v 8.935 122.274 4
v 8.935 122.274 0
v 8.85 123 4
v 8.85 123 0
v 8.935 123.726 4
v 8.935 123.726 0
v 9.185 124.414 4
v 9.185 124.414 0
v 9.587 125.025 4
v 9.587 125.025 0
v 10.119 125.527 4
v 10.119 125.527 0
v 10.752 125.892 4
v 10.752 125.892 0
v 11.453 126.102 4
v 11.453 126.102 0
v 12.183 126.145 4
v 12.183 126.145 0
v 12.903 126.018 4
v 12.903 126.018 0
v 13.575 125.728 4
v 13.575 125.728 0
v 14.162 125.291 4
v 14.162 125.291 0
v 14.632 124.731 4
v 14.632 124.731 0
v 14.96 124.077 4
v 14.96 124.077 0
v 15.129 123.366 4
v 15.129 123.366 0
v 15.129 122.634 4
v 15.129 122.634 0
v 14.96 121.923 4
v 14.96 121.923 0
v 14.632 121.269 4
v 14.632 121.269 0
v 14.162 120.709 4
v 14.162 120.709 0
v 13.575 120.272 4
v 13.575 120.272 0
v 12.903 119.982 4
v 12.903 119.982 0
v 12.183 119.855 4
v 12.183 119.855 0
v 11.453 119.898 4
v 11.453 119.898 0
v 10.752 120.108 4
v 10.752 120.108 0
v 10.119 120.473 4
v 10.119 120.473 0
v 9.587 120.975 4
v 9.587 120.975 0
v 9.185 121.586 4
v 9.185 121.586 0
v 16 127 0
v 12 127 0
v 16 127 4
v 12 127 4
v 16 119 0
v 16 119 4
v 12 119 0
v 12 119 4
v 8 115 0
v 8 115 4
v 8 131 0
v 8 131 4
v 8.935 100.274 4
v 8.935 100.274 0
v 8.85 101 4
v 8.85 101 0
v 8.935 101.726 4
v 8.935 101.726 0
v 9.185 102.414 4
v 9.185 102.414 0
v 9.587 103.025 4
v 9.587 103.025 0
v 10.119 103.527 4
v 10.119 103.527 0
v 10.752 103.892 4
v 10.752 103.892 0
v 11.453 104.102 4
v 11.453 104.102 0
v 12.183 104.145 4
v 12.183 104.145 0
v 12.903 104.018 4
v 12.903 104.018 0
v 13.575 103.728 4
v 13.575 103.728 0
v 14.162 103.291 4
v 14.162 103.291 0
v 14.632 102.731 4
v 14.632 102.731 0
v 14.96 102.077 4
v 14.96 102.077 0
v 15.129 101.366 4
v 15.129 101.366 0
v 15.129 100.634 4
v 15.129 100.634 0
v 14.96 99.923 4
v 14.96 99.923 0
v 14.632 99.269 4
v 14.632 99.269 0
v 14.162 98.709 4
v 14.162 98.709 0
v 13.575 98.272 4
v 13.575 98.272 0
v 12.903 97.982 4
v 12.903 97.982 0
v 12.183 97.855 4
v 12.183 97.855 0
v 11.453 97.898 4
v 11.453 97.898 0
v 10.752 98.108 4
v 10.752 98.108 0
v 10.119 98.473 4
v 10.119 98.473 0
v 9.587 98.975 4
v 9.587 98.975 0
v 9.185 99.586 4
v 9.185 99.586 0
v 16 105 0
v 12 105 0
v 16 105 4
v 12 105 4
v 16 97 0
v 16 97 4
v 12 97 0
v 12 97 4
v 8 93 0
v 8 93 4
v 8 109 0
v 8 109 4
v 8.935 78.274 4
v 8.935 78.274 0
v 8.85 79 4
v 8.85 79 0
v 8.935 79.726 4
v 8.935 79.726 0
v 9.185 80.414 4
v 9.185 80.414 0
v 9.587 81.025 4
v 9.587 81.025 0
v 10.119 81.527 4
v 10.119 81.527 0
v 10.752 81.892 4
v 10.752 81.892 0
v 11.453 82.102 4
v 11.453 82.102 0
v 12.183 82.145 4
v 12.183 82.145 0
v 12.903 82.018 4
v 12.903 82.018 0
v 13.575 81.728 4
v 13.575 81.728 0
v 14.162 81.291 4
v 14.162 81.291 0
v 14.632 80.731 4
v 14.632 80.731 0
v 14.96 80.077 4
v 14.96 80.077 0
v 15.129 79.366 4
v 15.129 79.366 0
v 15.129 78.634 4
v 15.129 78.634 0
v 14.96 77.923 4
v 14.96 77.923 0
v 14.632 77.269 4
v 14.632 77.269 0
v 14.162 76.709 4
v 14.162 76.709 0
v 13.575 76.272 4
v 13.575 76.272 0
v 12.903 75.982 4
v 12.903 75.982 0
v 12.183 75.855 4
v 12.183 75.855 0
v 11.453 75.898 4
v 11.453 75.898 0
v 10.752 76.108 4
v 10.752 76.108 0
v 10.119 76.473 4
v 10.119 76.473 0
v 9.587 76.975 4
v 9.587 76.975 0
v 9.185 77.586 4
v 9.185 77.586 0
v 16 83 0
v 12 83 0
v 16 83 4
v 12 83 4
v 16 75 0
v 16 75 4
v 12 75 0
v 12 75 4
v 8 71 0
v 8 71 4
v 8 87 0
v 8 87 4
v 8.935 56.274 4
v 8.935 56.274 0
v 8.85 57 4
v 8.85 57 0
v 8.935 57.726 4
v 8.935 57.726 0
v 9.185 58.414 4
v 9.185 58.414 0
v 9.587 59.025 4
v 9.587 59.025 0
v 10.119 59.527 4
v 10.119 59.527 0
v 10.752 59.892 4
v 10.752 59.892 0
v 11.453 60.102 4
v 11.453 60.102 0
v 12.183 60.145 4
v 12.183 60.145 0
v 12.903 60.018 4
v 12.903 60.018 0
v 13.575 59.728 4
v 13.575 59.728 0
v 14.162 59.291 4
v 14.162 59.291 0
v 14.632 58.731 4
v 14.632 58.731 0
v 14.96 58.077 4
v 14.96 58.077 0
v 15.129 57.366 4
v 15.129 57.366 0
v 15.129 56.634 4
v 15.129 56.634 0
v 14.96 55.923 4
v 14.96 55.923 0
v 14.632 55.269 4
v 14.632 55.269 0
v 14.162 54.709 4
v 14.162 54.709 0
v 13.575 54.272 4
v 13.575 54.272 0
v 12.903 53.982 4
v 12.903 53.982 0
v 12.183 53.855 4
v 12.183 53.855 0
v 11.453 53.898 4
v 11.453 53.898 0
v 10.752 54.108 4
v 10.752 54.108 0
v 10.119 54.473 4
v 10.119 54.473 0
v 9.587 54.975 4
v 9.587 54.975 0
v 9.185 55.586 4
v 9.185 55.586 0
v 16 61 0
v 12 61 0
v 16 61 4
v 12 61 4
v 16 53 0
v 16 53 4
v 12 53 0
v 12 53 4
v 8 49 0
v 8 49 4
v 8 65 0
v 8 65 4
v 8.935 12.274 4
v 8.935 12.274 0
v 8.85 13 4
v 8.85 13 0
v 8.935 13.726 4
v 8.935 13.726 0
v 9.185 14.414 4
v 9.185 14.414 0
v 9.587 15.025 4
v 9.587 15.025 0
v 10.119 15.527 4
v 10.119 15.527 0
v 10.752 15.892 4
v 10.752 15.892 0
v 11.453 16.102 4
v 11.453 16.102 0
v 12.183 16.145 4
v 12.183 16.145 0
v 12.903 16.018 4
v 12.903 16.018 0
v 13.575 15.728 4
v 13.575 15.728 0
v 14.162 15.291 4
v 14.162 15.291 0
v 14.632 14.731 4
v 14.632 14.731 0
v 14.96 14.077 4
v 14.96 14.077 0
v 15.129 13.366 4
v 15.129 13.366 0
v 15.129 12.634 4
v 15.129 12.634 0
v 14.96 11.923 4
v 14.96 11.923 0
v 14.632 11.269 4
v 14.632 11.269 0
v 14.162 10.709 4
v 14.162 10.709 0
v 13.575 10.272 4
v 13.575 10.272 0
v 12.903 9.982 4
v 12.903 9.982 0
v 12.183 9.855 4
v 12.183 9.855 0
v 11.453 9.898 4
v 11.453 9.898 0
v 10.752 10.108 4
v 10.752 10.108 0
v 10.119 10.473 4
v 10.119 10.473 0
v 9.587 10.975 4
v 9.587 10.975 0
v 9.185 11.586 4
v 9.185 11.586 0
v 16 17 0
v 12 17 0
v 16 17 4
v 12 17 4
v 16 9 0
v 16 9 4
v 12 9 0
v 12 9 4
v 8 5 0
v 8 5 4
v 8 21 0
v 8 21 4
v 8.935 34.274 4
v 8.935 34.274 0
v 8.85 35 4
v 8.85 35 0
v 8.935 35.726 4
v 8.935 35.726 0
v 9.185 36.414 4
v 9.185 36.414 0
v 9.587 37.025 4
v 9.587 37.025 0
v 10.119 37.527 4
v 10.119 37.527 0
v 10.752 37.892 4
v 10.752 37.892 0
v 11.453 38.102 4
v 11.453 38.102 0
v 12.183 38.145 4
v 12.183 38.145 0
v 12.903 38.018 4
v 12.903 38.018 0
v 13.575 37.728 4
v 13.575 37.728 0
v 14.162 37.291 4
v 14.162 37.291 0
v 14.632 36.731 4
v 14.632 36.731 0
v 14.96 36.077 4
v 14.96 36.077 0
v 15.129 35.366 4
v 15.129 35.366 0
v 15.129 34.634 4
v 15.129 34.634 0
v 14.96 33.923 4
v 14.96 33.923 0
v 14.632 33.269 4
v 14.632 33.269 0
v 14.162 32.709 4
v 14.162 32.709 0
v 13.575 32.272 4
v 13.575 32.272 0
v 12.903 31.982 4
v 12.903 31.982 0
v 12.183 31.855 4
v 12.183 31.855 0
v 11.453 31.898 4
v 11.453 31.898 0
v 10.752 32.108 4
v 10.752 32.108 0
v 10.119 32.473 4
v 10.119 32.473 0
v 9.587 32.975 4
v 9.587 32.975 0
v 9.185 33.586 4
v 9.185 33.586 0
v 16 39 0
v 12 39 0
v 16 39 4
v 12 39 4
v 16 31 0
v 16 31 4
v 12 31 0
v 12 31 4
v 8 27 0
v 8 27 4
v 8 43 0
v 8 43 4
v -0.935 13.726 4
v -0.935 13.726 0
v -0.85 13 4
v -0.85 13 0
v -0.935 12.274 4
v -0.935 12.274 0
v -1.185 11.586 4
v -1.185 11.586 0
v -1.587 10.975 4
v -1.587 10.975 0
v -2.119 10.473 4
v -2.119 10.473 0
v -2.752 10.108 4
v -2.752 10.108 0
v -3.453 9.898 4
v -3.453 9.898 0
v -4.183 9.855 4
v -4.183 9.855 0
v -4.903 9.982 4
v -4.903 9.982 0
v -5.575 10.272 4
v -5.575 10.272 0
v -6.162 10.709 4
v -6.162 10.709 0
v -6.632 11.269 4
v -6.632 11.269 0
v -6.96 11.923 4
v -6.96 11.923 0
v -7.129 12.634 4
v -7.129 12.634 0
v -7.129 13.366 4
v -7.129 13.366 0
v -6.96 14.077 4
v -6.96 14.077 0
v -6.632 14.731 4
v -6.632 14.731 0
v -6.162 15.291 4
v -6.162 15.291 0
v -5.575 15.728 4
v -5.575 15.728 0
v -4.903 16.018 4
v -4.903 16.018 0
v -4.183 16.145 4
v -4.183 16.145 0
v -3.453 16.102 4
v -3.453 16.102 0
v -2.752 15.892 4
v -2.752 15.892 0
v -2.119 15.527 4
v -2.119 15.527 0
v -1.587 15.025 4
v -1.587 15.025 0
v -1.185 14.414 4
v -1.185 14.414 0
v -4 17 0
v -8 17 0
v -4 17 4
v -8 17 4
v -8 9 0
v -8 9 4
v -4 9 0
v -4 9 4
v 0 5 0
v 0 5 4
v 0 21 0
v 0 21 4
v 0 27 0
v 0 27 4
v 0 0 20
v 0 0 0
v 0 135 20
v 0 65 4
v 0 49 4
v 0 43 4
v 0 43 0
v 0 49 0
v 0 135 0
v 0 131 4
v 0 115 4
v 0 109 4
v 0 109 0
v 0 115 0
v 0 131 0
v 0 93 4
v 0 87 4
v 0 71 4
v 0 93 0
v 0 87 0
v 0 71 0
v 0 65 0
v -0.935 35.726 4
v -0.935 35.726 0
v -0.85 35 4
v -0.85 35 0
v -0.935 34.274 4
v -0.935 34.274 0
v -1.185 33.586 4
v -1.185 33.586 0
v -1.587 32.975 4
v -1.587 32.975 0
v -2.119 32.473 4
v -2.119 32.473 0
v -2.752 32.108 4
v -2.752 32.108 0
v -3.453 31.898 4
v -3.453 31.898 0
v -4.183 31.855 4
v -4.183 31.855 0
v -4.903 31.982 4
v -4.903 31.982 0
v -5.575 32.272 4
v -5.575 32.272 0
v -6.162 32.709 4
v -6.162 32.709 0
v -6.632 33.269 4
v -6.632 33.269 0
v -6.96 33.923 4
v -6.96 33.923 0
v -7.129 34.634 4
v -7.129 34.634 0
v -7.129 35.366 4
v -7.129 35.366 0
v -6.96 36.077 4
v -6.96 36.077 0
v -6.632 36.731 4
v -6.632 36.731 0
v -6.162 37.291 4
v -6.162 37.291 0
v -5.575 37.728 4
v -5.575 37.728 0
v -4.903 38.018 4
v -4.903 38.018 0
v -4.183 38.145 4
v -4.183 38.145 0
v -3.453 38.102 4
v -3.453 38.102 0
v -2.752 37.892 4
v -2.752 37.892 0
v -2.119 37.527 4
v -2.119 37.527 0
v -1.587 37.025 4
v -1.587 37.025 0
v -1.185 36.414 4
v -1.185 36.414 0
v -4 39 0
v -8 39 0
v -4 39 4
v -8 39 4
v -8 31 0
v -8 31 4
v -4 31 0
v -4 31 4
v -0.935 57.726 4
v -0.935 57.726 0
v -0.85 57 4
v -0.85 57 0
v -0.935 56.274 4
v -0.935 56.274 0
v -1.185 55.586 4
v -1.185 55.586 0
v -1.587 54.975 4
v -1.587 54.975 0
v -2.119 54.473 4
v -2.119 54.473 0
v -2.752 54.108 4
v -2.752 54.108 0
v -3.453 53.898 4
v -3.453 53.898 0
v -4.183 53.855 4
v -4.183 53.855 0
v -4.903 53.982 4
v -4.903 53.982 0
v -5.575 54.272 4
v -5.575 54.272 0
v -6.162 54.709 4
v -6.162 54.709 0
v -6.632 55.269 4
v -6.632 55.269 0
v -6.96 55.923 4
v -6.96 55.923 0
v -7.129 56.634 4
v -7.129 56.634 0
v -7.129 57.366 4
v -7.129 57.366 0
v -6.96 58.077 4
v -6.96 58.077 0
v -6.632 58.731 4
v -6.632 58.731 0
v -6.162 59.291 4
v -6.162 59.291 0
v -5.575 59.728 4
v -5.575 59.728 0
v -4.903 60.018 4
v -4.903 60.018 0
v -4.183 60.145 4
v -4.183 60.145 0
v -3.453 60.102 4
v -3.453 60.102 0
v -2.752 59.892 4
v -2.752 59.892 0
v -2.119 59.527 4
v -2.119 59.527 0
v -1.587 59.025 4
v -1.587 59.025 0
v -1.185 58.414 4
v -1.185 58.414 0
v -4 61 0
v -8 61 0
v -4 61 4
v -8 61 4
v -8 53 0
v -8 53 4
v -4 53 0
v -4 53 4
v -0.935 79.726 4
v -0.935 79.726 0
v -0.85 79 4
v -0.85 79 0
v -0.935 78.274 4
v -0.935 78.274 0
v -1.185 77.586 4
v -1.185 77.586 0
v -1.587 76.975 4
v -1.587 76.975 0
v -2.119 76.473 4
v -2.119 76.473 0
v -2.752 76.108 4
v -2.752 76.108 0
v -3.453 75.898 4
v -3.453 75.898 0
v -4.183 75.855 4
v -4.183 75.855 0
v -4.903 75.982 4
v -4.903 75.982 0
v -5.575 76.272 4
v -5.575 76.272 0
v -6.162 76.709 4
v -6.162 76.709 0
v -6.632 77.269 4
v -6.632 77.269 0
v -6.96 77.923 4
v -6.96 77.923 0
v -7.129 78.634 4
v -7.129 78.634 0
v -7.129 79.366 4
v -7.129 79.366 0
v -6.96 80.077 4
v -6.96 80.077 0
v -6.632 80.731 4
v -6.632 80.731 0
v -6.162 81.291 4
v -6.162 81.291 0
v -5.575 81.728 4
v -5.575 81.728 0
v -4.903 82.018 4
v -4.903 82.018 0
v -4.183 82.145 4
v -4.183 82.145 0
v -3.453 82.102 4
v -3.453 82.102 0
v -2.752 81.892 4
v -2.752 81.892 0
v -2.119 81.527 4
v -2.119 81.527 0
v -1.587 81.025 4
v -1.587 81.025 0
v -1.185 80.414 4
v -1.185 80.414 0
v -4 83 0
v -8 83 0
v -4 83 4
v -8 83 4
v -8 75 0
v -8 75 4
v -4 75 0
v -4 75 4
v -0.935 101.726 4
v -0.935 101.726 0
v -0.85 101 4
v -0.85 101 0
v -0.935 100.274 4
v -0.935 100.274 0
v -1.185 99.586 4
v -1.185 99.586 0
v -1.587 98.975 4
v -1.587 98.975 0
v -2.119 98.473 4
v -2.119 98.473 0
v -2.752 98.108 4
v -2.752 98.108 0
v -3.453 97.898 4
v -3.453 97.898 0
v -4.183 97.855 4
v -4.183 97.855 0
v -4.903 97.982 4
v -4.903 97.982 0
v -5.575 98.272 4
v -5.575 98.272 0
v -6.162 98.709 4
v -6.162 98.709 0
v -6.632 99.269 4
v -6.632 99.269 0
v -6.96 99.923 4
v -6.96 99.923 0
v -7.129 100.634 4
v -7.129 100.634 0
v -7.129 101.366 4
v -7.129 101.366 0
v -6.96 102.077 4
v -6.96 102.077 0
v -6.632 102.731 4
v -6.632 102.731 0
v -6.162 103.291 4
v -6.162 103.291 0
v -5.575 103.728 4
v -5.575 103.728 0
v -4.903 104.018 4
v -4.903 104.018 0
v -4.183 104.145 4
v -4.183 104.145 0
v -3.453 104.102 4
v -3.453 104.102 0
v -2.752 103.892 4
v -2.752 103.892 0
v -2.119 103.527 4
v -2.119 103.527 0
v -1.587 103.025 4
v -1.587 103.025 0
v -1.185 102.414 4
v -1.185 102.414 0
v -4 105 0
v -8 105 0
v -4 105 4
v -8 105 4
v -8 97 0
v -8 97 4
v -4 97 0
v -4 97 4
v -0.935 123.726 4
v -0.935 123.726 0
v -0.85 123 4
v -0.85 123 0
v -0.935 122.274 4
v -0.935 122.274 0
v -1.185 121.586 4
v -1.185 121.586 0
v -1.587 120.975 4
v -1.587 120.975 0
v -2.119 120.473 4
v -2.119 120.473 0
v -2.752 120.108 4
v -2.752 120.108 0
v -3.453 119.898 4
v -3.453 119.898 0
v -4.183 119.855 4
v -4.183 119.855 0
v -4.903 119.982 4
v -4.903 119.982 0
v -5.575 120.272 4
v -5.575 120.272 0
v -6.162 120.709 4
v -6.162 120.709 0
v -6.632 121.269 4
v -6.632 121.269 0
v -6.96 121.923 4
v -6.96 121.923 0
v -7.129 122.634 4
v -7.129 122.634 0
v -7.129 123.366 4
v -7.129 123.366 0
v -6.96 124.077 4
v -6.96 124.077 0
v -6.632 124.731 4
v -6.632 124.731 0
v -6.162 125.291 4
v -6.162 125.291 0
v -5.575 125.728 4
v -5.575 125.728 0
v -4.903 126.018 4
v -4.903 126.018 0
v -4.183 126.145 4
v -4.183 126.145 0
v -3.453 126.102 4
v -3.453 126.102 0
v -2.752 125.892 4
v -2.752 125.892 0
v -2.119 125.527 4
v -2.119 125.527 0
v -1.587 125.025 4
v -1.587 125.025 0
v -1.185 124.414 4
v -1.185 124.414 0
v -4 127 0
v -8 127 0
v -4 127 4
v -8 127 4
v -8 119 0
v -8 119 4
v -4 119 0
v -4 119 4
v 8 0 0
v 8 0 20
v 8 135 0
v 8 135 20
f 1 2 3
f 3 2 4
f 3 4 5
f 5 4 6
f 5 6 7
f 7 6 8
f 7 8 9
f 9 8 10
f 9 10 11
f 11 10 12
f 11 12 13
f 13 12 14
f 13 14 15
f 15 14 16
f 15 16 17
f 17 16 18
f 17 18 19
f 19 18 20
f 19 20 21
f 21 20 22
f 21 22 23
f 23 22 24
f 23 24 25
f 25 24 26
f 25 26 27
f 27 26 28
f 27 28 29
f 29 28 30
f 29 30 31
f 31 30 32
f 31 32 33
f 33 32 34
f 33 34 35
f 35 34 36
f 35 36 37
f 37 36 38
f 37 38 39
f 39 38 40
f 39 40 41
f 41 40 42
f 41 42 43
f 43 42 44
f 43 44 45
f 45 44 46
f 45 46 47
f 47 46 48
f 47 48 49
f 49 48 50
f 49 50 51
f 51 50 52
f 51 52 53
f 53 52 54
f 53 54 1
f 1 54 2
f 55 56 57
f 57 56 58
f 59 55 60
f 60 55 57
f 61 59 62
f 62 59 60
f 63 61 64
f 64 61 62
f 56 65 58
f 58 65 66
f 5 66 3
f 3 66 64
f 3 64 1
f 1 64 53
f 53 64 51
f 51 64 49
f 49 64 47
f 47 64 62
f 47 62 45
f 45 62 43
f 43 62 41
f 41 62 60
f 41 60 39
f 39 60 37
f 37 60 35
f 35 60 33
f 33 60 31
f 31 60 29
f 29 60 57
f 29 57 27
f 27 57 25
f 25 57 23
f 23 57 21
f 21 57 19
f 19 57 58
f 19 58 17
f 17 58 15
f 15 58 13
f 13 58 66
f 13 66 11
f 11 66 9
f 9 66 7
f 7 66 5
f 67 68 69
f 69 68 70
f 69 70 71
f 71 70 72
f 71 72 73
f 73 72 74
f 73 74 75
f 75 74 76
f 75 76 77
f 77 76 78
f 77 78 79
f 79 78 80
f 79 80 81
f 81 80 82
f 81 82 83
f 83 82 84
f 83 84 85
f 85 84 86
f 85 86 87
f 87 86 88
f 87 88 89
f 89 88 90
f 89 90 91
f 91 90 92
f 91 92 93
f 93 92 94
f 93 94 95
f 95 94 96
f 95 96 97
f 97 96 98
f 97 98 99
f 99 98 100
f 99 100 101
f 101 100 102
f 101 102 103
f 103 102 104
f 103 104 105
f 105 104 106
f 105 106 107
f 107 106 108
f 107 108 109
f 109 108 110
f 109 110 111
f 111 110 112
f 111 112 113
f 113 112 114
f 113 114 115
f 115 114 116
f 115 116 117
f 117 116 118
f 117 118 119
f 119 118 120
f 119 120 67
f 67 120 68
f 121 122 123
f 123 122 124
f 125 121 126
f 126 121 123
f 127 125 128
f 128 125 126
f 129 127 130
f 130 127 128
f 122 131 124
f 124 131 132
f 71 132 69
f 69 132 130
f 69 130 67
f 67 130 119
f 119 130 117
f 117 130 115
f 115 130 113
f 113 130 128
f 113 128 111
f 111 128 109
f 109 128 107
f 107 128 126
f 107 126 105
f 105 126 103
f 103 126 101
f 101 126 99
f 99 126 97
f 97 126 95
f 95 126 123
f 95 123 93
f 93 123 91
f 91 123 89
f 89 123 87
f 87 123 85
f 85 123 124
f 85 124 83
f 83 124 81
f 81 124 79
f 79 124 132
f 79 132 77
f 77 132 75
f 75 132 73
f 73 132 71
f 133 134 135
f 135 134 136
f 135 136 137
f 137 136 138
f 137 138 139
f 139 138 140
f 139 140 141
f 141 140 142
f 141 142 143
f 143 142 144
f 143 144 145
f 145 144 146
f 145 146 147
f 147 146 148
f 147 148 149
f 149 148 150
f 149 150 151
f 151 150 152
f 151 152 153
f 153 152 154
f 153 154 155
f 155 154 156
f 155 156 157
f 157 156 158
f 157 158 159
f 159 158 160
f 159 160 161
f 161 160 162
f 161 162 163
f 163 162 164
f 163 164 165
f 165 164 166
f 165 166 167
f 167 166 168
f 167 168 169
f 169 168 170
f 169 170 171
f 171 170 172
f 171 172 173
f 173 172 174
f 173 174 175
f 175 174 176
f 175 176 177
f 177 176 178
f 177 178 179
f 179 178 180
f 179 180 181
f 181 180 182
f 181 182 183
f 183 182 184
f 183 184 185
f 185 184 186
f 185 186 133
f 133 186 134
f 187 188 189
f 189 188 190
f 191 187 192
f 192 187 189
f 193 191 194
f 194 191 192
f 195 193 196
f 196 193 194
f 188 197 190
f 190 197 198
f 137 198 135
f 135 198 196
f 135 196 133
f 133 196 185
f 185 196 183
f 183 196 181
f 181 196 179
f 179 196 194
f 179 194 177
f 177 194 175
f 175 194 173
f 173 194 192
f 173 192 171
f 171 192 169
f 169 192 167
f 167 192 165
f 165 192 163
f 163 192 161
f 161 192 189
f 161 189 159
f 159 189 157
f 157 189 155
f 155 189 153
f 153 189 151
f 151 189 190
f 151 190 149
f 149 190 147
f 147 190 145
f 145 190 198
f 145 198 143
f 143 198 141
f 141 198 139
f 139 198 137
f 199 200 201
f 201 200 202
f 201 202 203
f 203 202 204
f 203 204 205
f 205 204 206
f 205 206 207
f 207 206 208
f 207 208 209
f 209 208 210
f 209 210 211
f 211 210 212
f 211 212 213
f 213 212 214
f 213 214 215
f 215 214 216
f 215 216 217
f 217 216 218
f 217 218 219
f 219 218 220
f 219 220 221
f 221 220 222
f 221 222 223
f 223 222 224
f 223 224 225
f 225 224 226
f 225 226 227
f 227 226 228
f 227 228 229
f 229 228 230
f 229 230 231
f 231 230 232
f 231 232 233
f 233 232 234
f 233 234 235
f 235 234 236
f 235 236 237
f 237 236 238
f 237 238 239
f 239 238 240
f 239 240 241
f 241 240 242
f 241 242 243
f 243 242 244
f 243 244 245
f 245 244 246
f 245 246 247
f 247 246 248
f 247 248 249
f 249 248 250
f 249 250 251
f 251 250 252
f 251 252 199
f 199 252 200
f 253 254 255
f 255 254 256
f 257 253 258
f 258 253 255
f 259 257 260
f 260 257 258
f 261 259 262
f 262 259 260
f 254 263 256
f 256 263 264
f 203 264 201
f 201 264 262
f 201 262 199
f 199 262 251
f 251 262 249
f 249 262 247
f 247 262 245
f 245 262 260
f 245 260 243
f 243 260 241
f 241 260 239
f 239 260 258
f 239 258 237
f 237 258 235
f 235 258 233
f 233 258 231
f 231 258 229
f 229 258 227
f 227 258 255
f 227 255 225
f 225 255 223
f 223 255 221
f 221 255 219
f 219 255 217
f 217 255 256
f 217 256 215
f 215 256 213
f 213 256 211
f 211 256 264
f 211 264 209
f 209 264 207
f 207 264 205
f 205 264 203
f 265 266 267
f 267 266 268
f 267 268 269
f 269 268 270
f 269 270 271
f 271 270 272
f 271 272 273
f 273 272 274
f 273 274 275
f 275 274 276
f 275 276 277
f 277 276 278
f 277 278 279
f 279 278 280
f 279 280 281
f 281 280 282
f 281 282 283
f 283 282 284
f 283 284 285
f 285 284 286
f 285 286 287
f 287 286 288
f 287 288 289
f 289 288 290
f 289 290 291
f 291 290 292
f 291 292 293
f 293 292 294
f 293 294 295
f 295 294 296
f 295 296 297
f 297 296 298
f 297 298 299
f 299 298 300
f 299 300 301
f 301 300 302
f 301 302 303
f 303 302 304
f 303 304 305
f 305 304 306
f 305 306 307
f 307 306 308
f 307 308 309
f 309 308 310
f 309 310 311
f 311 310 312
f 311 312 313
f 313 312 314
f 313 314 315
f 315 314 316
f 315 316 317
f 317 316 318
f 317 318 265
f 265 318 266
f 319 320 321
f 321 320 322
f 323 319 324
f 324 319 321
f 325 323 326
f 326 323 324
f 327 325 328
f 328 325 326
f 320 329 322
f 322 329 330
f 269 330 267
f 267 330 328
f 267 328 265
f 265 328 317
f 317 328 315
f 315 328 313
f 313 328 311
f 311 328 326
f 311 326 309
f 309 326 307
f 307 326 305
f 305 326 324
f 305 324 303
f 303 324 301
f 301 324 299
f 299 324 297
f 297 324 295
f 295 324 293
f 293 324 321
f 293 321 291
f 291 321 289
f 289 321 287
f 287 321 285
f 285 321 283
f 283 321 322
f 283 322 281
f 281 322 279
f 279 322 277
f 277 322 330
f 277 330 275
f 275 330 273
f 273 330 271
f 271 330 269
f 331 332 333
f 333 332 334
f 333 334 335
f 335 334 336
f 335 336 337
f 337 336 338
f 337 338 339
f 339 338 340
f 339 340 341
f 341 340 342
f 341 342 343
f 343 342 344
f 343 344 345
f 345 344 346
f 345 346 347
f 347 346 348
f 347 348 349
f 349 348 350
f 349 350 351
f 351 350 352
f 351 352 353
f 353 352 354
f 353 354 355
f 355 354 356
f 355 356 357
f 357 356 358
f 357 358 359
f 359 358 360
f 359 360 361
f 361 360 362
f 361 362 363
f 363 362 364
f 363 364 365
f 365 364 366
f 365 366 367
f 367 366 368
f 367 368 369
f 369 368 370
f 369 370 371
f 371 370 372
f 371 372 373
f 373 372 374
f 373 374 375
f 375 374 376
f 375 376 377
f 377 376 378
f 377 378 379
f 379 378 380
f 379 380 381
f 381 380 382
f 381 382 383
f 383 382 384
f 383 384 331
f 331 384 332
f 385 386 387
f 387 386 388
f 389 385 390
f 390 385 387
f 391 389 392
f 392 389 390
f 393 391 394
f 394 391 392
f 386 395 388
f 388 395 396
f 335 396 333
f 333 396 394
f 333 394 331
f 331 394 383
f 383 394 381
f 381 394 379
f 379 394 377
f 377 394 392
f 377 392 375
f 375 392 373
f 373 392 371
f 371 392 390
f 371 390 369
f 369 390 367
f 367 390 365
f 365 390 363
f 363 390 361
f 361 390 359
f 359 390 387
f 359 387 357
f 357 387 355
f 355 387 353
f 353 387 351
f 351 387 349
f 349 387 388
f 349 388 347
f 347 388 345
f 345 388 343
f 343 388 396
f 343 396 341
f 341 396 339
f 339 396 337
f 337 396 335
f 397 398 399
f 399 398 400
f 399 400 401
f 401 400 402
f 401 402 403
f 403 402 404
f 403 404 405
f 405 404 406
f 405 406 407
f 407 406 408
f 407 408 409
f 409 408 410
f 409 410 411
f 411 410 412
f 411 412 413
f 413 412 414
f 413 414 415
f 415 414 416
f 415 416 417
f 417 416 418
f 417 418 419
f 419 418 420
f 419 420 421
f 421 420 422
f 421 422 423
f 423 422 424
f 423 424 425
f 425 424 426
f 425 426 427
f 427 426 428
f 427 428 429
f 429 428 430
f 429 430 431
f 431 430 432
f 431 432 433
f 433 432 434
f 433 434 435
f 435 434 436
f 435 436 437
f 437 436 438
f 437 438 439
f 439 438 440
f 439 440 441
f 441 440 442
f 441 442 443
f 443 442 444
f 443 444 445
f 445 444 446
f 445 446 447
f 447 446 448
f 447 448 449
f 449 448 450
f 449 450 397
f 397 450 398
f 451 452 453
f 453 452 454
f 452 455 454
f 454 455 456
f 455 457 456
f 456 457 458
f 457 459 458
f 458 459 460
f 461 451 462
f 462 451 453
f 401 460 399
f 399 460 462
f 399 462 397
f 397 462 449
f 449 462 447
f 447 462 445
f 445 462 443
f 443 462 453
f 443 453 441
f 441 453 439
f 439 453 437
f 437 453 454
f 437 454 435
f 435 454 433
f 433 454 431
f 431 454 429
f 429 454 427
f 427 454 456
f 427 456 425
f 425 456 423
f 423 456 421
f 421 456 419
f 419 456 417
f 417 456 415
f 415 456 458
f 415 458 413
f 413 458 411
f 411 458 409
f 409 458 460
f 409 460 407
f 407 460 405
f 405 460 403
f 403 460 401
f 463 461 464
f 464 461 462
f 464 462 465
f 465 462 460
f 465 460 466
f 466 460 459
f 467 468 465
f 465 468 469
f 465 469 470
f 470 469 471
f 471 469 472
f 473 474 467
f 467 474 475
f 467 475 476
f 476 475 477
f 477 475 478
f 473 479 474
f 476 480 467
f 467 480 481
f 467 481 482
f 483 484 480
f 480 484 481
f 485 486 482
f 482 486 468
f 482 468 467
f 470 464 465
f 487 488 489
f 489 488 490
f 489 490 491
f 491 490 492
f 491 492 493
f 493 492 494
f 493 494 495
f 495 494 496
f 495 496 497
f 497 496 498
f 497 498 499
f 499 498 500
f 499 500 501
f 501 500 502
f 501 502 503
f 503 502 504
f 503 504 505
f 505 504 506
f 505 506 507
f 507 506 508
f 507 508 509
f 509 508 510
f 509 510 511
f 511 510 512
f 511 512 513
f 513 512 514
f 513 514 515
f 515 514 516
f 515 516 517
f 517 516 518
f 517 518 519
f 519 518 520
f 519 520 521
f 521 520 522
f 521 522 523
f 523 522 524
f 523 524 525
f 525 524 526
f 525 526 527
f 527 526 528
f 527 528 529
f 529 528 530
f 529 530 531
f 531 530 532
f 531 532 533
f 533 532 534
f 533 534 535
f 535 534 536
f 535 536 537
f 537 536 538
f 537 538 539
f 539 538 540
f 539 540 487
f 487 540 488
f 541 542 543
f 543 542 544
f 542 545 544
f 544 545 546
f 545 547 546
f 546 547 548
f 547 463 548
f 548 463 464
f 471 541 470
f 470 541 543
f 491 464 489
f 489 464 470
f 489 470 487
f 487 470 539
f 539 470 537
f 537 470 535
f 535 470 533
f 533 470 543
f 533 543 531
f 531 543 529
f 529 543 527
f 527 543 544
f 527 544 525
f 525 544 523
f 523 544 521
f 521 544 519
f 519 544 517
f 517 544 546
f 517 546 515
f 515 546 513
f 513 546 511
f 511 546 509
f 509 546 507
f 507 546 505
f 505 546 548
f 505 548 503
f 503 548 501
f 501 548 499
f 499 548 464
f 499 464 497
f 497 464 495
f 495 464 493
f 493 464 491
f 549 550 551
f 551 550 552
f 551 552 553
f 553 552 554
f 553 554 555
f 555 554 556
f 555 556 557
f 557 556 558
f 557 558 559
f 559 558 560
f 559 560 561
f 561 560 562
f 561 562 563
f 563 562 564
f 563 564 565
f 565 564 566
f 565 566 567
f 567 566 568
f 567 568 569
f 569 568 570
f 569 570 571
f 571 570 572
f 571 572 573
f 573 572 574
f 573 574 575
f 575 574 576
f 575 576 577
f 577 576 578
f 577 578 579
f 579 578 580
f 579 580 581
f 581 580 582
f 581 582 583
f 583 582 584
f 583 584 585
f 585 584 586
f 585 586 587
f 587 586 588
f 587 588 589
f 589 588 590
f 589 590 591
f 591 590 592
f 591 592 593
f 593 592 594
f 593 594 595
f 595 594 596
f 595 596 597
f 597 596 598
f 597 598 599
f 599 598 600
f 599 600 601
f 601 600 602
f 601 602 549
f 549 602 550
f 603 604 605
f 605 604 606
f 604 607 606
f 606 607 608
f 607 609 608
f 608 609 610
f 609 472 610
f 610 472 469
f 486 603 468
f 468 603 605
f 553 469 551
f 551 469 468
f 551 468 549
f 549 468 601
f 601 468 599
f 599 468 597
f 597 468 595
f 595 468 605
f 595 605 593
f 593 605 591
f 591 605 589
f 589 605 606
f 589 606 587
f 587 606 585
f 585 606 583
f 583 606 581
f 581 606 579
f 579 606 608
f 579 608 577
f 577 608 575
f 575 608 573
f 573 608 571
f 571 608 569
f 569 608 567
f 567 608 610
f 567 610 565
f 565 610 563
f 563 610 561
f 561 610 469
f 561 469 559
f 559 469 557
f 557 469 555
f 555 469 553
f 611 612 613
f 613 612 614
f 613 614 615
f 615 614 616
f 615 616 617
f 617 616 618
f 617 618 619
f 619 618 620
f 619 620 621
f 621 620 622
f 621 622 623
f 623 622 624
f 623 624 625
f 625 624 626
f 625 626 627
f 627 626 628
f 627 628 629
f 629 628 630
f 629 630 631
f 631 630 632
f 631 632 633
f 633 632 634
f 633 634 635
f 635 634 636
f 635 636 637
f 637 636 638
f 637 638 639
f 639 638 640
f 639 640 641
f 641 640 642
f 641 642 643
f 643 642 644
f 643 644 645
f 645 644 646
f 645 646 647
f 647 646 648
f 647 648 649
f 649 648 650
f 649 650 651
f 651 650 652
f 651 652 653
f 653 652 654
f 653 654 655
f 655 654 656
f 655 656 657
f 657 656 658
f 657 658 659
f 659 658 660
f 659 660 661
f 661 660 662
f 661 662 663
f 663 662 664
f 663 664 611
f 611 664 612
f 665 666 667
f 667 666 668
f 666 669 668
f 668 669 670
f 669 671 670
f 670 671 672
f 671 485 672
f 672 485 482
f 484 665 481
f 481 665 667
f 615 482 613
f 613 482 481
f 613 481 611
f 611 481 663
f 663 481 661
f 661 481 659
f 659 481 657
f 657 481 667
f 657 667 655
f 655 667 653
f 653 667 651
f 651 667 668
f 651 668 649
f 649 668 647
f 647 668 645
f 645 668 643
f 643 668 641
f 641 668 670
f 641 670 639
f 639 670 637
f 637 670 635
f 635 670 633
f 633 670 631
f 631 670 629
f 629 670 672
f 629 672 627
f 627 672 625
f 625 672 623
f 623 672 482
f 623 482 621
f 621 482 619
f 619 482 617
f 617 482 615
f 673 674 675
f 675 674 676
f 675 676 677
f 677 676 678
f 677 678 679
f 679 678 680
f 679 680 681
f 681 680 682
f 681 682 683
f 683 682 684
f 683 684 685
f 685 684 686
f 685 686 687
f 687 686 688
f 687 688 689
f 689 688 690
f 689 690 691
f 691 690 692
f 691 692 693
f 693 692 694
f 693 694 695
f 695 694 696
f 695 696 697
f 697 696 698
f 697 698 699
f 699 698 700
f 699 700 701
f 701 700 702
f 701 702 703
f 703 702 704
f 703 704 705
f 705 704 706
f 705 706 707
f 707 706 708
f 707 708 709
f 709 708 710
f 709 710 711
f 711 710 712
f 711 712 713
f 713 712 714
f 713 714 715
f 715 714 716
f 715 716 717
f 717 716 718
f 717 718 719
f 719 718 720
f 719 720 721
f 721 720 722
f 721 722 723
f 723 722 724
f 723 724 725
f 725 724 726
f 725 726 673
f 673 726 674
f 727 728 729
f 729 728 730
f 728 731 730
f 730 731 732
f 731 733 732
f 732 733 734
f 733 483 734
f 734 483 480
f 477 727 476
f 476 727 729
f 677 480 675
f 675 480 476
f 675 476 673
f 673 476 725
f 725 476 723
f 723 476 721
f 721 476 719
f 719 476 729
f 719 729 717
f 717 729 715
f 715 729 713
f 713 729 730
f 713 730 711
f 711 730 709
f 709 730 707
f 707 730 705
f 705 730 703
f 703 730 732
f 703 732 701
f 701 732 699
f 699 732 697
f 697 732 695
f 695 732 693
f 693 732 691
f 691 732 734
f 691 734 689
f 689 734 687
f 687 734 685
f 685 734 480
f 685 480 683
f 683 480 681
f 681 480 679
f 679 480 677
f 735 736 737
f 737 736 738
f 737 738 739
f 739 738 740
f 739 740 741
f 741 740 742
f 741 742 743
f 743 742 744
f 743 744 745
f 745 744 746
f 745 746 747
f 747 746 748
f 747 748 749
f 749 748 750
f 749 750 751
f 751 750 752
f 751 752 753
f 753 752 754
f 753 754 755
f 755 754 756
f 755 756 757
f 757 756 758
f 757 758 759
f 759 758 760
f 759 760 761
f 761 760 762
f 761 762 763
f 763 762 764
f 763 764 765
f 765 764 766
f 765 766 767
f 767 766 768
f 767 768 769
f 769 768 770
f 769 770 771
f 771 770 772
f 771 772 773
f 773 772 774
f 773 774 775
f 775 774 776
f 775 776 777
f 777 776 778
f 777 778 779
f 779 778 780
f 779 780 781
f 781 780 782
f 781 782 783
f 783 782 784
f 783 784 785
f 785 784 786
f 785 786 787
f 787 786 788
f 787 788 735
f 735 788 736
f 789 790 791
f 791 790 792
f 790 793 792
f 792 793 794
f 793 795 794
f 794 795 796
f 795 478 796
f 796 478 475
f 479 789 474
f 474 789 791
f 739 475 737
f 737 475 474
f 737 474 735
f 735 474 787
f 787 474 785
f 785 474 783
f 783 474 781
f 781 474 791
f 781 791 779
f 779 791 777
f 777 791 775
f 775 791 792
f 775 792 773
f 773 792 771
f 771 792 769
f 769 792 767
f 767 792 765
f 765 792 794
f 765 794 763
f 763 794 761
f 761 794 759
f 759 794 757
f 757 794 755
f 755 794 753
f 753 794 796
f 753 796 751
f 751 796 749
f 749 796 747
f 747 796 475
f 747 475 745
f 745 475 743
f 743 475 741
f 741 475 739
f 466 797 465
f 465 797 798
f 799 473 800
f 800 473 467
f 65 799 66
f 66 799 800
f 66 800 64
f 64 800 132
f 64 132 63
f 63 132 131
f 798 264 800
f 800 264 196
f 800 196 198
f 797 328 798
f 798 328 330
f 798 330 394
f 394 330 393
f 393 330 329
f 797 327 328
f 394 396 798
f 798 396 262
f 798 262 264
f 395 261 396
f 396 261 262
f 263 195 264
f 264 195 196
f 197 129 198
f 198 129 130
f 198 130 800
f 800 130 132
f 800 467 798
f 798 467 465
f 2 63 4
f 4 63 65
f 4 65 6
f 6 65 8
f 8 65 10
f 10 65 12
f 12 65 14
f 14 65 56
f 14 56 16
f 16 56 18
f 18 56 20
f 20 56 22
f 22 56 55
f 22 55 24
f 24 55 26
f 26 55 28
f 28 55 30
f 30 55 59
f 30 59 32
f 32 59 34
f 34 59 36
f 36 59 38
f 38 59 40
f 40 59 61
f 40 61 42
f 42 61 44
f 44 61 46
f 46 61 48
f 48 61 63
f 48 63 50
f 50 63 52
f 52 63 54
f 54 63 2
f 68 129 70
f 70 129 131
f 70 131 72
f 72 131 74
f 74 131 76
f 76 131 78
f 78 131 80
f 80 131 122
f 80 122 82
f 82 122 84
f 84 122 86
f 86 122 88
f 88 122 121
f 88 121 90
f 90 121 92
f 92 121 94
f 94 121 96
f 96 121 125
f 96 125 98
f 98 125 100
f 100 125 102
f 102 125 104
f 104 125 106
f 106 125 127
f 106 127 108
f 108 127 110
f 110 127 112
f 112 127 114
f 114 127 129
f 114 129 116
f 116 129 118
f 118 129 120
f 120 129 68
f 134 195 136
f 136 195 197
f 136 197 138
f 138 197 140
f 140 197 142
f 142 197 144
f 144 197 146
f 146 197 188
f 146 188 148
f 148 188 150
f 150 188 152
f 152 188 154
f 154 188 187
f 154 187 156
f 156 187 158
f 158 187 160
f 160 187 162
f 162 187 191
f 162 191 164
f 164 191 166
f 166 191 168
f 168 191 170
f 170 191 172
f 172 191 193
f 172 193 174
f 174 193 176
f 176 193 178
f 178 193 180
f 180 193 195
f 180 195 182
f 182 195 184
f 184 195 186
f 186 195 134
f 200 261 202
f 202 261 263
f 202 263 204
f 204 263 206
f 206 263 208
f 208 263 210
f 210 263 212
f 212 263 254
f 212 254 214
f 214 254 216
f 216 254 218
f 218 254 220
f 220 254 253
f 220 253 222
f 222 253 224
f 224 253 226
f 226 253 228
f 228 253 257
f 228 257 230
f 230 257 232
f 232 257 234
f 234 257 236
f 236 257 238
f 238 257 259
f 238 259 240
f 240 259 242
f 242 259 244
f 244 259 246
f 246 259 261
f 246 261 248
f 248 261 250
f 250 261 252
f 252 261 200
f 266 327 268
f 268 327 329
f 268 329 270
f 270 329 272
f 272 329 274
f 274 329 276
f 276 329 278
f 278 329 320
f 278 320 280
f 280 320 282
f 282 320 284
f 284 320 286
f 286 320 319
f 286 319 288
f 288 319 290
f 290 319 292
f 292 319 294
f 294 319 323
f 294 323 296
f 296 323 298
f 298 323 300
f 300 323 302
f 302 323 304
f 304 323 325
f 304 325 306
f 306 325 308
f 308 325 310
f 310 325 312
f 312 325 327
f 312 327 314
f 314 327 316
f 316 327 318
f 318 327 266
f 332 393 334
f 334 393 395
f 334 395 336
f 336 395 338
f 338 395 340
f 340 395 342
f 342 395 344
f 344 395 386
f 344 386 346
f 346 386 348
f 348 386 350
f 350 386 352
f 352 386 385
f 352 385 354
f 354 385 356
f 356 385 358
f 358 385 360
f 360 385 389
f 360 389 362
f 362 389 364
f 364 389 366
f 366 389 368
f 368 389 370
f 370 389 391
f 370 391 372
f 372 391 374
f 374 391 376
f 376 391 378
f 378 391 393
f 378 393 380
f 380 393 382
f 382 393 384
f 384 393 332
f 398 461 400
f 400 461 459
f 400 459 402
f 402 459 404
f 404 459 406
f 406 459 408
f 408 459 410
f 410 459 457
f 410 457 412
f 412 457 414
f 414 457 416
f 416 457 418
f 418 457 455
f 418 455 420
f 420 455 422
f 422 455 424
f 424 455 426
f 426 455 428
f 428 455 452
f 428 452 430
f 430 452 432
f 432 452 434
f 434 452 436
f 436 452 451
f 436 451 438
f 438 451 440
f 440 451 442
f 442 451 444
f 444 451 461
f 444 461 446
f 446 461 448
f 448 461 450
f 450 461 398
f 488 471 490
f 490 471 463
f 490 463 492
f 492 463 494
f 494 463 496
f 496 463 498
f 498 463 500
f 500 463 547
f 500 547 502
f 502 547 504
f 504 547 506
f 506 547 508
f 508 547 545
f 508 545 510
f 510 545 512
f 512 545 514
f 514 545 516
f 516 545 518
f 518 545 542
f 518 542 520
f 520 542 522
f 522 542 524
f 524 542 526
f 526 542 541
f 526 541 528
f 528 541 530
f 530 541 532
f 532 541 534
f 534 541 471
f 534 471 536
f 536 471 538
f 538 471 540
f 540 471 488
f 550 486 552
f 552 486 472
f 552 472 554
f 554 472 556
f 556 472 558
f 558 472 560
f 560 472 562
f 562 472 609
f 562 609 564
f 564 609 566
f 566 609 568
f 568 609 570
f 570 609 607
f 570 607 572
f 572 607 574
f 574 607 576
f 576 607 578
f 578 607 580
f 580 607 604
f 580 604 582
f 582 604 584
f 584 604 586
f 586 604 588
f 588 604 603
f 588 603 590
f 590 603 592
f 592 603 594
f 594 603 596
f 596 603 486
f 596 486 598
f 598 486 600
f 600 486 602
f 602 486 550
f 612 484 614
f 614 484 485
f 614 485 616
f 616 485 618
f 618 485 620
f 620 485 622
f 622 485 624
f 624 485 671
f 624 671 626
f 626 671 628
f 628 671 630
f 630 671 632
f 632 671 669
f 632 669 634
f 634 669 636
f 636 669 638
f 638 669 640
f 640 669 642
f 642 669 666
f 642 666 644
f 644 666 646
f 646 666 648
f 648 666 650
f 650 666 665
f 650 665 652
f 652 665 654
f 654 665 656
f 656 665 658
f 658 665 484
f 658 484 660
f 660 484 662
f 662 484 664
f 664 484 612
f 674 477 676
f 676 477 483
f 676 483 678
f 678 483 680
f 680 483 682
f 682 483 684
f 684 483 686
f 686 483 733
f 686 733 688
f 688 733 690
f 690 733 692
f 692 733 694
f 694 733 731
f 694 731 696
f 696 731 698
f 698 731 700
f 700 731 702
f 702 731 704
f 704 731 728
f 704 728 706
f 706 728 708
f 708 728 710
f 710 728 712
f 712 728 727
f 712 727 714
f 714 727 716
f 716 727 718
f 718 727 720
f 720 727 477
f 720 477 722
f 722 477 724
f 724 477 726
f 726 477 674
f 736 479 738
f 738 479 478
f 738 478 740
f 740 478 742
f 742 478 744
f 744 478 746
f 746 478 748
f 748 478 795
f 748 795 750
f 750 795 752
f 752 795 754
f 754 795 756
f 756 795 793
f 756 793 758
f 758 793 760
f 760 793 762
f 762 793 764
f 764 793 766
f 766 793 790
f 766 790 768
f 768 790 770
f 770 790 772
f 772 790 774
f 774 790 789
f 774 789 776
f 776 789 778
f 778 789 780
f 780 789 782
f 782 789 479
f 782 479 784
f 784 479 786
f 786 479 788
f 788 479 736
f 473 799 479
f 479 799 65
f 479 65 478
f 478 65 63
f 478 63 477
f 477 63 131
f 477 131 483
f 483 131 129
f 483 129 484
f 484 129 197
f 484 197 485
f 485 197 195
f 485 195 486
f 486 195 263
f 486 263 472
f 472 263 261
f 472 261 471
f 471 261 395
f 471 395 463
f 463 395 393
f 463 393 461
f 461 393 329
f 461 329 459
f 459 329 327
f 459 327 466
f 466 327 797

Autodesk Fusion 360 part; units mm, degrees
sketch "Sketch1" plane through (0, 0, 0) normal (0, 0, 1) x (1, 0, 0)
  line L0 (0, 0) -> (0, 135)
  line L1 (0, 135) -> (8, 135)
  line L2 (8, 135) -> (8, 0)
  line L3 (8, 0) -> (0, 0)
  line L4 (8, 135) -> (8, 127) construction
  line L5 (8, 127) -> (16, 127)
  line L6 (16, 127) -> (16, 119)
  line L7 (16, 119) -> (8, 119)
  line L8 (8, 119) -> (8, 127)
  line L9 (4, 135) -> (4, 0) construction
  line L10 (12, 127) -> (8, 131)
  line L11 (12, 119) -> (8, 115)
  line L12 (12, 119) -> (12, 127) construction
  circle A0 centre (12, 123) radius 3.15
  line L13 (8, 131) -> (8, 115)
  dimension "d1" = 135
  dimension "d2" = 8
  dimension "d3" = 8
  dimension "d4" = 8
  dimension "d5" = 8
  dimension "d6" = 6.3
extrude "Extrude1" add sketch "Sketch1" along normal blind 20 contours L0 L1 L2 L3 L8 L13 makes body 1
extrude "Extrude2" add sketch "Sketch1" along normal blind 4 separate body contours L2 L7 L11 L13 | L2 L5 L10 L13 | L2 L5 L6 L7 L8 L13 makes body 2
pattern_linear "R-Pattern1" count 6 spacing 22 along (0, -1, 0) of bodies 2 makes body 3 at (15.1461, 100.843, 2.6667) makes body 4 at (15.1461, 78.843, 2.6667) makes body 5 at (8.8657, 56.6864, 2.6667) makes body 6 at (8.8657, 34.6864, 2.6667) makes body 7 at (15.1461, 12.843, 2.6667)
sketch "Sketch2" plane through (0, 0, 20) normal (0, 0, 1) x (-1, 0, 0)
  line L0 (-8, 0) -> (-8, -135)
  line L1 (-8, -135) -> (0, -135)
  line L2 (0, -135) -> (0, 0)
  line L3 (0, 0) -> (-8, 0)
  line L4 (-4, 0) -> (-4, -135)
ref_plane "WorkPlane1" through (4, 67.5, 10) normal (1, 0, 0) x (0, 1, 0)
mirror "Mirror1" about plane through (4, 67.5, 10) normal (1, 0, 0) of bodies 2 3 4 5 6 7 makes body 8 at (-7.1461, 122.843, 2.6667) makes body 9 at (-7.1461, 100.843, 2.6667) makes body 10 at (-7.1461, 78.843, 2.6667) makes body 11 at (-0.8657, 56.6864, 2.6667) makes body 12 at (-0.8657, 34.6864, 2.6667) makes body 13 at (-7.1461, 12.843, 2.6667)
combine "Combine1" operation add target body 1 tool bodies 8 9 10 11 12 13 6 7 5 4 3 2
